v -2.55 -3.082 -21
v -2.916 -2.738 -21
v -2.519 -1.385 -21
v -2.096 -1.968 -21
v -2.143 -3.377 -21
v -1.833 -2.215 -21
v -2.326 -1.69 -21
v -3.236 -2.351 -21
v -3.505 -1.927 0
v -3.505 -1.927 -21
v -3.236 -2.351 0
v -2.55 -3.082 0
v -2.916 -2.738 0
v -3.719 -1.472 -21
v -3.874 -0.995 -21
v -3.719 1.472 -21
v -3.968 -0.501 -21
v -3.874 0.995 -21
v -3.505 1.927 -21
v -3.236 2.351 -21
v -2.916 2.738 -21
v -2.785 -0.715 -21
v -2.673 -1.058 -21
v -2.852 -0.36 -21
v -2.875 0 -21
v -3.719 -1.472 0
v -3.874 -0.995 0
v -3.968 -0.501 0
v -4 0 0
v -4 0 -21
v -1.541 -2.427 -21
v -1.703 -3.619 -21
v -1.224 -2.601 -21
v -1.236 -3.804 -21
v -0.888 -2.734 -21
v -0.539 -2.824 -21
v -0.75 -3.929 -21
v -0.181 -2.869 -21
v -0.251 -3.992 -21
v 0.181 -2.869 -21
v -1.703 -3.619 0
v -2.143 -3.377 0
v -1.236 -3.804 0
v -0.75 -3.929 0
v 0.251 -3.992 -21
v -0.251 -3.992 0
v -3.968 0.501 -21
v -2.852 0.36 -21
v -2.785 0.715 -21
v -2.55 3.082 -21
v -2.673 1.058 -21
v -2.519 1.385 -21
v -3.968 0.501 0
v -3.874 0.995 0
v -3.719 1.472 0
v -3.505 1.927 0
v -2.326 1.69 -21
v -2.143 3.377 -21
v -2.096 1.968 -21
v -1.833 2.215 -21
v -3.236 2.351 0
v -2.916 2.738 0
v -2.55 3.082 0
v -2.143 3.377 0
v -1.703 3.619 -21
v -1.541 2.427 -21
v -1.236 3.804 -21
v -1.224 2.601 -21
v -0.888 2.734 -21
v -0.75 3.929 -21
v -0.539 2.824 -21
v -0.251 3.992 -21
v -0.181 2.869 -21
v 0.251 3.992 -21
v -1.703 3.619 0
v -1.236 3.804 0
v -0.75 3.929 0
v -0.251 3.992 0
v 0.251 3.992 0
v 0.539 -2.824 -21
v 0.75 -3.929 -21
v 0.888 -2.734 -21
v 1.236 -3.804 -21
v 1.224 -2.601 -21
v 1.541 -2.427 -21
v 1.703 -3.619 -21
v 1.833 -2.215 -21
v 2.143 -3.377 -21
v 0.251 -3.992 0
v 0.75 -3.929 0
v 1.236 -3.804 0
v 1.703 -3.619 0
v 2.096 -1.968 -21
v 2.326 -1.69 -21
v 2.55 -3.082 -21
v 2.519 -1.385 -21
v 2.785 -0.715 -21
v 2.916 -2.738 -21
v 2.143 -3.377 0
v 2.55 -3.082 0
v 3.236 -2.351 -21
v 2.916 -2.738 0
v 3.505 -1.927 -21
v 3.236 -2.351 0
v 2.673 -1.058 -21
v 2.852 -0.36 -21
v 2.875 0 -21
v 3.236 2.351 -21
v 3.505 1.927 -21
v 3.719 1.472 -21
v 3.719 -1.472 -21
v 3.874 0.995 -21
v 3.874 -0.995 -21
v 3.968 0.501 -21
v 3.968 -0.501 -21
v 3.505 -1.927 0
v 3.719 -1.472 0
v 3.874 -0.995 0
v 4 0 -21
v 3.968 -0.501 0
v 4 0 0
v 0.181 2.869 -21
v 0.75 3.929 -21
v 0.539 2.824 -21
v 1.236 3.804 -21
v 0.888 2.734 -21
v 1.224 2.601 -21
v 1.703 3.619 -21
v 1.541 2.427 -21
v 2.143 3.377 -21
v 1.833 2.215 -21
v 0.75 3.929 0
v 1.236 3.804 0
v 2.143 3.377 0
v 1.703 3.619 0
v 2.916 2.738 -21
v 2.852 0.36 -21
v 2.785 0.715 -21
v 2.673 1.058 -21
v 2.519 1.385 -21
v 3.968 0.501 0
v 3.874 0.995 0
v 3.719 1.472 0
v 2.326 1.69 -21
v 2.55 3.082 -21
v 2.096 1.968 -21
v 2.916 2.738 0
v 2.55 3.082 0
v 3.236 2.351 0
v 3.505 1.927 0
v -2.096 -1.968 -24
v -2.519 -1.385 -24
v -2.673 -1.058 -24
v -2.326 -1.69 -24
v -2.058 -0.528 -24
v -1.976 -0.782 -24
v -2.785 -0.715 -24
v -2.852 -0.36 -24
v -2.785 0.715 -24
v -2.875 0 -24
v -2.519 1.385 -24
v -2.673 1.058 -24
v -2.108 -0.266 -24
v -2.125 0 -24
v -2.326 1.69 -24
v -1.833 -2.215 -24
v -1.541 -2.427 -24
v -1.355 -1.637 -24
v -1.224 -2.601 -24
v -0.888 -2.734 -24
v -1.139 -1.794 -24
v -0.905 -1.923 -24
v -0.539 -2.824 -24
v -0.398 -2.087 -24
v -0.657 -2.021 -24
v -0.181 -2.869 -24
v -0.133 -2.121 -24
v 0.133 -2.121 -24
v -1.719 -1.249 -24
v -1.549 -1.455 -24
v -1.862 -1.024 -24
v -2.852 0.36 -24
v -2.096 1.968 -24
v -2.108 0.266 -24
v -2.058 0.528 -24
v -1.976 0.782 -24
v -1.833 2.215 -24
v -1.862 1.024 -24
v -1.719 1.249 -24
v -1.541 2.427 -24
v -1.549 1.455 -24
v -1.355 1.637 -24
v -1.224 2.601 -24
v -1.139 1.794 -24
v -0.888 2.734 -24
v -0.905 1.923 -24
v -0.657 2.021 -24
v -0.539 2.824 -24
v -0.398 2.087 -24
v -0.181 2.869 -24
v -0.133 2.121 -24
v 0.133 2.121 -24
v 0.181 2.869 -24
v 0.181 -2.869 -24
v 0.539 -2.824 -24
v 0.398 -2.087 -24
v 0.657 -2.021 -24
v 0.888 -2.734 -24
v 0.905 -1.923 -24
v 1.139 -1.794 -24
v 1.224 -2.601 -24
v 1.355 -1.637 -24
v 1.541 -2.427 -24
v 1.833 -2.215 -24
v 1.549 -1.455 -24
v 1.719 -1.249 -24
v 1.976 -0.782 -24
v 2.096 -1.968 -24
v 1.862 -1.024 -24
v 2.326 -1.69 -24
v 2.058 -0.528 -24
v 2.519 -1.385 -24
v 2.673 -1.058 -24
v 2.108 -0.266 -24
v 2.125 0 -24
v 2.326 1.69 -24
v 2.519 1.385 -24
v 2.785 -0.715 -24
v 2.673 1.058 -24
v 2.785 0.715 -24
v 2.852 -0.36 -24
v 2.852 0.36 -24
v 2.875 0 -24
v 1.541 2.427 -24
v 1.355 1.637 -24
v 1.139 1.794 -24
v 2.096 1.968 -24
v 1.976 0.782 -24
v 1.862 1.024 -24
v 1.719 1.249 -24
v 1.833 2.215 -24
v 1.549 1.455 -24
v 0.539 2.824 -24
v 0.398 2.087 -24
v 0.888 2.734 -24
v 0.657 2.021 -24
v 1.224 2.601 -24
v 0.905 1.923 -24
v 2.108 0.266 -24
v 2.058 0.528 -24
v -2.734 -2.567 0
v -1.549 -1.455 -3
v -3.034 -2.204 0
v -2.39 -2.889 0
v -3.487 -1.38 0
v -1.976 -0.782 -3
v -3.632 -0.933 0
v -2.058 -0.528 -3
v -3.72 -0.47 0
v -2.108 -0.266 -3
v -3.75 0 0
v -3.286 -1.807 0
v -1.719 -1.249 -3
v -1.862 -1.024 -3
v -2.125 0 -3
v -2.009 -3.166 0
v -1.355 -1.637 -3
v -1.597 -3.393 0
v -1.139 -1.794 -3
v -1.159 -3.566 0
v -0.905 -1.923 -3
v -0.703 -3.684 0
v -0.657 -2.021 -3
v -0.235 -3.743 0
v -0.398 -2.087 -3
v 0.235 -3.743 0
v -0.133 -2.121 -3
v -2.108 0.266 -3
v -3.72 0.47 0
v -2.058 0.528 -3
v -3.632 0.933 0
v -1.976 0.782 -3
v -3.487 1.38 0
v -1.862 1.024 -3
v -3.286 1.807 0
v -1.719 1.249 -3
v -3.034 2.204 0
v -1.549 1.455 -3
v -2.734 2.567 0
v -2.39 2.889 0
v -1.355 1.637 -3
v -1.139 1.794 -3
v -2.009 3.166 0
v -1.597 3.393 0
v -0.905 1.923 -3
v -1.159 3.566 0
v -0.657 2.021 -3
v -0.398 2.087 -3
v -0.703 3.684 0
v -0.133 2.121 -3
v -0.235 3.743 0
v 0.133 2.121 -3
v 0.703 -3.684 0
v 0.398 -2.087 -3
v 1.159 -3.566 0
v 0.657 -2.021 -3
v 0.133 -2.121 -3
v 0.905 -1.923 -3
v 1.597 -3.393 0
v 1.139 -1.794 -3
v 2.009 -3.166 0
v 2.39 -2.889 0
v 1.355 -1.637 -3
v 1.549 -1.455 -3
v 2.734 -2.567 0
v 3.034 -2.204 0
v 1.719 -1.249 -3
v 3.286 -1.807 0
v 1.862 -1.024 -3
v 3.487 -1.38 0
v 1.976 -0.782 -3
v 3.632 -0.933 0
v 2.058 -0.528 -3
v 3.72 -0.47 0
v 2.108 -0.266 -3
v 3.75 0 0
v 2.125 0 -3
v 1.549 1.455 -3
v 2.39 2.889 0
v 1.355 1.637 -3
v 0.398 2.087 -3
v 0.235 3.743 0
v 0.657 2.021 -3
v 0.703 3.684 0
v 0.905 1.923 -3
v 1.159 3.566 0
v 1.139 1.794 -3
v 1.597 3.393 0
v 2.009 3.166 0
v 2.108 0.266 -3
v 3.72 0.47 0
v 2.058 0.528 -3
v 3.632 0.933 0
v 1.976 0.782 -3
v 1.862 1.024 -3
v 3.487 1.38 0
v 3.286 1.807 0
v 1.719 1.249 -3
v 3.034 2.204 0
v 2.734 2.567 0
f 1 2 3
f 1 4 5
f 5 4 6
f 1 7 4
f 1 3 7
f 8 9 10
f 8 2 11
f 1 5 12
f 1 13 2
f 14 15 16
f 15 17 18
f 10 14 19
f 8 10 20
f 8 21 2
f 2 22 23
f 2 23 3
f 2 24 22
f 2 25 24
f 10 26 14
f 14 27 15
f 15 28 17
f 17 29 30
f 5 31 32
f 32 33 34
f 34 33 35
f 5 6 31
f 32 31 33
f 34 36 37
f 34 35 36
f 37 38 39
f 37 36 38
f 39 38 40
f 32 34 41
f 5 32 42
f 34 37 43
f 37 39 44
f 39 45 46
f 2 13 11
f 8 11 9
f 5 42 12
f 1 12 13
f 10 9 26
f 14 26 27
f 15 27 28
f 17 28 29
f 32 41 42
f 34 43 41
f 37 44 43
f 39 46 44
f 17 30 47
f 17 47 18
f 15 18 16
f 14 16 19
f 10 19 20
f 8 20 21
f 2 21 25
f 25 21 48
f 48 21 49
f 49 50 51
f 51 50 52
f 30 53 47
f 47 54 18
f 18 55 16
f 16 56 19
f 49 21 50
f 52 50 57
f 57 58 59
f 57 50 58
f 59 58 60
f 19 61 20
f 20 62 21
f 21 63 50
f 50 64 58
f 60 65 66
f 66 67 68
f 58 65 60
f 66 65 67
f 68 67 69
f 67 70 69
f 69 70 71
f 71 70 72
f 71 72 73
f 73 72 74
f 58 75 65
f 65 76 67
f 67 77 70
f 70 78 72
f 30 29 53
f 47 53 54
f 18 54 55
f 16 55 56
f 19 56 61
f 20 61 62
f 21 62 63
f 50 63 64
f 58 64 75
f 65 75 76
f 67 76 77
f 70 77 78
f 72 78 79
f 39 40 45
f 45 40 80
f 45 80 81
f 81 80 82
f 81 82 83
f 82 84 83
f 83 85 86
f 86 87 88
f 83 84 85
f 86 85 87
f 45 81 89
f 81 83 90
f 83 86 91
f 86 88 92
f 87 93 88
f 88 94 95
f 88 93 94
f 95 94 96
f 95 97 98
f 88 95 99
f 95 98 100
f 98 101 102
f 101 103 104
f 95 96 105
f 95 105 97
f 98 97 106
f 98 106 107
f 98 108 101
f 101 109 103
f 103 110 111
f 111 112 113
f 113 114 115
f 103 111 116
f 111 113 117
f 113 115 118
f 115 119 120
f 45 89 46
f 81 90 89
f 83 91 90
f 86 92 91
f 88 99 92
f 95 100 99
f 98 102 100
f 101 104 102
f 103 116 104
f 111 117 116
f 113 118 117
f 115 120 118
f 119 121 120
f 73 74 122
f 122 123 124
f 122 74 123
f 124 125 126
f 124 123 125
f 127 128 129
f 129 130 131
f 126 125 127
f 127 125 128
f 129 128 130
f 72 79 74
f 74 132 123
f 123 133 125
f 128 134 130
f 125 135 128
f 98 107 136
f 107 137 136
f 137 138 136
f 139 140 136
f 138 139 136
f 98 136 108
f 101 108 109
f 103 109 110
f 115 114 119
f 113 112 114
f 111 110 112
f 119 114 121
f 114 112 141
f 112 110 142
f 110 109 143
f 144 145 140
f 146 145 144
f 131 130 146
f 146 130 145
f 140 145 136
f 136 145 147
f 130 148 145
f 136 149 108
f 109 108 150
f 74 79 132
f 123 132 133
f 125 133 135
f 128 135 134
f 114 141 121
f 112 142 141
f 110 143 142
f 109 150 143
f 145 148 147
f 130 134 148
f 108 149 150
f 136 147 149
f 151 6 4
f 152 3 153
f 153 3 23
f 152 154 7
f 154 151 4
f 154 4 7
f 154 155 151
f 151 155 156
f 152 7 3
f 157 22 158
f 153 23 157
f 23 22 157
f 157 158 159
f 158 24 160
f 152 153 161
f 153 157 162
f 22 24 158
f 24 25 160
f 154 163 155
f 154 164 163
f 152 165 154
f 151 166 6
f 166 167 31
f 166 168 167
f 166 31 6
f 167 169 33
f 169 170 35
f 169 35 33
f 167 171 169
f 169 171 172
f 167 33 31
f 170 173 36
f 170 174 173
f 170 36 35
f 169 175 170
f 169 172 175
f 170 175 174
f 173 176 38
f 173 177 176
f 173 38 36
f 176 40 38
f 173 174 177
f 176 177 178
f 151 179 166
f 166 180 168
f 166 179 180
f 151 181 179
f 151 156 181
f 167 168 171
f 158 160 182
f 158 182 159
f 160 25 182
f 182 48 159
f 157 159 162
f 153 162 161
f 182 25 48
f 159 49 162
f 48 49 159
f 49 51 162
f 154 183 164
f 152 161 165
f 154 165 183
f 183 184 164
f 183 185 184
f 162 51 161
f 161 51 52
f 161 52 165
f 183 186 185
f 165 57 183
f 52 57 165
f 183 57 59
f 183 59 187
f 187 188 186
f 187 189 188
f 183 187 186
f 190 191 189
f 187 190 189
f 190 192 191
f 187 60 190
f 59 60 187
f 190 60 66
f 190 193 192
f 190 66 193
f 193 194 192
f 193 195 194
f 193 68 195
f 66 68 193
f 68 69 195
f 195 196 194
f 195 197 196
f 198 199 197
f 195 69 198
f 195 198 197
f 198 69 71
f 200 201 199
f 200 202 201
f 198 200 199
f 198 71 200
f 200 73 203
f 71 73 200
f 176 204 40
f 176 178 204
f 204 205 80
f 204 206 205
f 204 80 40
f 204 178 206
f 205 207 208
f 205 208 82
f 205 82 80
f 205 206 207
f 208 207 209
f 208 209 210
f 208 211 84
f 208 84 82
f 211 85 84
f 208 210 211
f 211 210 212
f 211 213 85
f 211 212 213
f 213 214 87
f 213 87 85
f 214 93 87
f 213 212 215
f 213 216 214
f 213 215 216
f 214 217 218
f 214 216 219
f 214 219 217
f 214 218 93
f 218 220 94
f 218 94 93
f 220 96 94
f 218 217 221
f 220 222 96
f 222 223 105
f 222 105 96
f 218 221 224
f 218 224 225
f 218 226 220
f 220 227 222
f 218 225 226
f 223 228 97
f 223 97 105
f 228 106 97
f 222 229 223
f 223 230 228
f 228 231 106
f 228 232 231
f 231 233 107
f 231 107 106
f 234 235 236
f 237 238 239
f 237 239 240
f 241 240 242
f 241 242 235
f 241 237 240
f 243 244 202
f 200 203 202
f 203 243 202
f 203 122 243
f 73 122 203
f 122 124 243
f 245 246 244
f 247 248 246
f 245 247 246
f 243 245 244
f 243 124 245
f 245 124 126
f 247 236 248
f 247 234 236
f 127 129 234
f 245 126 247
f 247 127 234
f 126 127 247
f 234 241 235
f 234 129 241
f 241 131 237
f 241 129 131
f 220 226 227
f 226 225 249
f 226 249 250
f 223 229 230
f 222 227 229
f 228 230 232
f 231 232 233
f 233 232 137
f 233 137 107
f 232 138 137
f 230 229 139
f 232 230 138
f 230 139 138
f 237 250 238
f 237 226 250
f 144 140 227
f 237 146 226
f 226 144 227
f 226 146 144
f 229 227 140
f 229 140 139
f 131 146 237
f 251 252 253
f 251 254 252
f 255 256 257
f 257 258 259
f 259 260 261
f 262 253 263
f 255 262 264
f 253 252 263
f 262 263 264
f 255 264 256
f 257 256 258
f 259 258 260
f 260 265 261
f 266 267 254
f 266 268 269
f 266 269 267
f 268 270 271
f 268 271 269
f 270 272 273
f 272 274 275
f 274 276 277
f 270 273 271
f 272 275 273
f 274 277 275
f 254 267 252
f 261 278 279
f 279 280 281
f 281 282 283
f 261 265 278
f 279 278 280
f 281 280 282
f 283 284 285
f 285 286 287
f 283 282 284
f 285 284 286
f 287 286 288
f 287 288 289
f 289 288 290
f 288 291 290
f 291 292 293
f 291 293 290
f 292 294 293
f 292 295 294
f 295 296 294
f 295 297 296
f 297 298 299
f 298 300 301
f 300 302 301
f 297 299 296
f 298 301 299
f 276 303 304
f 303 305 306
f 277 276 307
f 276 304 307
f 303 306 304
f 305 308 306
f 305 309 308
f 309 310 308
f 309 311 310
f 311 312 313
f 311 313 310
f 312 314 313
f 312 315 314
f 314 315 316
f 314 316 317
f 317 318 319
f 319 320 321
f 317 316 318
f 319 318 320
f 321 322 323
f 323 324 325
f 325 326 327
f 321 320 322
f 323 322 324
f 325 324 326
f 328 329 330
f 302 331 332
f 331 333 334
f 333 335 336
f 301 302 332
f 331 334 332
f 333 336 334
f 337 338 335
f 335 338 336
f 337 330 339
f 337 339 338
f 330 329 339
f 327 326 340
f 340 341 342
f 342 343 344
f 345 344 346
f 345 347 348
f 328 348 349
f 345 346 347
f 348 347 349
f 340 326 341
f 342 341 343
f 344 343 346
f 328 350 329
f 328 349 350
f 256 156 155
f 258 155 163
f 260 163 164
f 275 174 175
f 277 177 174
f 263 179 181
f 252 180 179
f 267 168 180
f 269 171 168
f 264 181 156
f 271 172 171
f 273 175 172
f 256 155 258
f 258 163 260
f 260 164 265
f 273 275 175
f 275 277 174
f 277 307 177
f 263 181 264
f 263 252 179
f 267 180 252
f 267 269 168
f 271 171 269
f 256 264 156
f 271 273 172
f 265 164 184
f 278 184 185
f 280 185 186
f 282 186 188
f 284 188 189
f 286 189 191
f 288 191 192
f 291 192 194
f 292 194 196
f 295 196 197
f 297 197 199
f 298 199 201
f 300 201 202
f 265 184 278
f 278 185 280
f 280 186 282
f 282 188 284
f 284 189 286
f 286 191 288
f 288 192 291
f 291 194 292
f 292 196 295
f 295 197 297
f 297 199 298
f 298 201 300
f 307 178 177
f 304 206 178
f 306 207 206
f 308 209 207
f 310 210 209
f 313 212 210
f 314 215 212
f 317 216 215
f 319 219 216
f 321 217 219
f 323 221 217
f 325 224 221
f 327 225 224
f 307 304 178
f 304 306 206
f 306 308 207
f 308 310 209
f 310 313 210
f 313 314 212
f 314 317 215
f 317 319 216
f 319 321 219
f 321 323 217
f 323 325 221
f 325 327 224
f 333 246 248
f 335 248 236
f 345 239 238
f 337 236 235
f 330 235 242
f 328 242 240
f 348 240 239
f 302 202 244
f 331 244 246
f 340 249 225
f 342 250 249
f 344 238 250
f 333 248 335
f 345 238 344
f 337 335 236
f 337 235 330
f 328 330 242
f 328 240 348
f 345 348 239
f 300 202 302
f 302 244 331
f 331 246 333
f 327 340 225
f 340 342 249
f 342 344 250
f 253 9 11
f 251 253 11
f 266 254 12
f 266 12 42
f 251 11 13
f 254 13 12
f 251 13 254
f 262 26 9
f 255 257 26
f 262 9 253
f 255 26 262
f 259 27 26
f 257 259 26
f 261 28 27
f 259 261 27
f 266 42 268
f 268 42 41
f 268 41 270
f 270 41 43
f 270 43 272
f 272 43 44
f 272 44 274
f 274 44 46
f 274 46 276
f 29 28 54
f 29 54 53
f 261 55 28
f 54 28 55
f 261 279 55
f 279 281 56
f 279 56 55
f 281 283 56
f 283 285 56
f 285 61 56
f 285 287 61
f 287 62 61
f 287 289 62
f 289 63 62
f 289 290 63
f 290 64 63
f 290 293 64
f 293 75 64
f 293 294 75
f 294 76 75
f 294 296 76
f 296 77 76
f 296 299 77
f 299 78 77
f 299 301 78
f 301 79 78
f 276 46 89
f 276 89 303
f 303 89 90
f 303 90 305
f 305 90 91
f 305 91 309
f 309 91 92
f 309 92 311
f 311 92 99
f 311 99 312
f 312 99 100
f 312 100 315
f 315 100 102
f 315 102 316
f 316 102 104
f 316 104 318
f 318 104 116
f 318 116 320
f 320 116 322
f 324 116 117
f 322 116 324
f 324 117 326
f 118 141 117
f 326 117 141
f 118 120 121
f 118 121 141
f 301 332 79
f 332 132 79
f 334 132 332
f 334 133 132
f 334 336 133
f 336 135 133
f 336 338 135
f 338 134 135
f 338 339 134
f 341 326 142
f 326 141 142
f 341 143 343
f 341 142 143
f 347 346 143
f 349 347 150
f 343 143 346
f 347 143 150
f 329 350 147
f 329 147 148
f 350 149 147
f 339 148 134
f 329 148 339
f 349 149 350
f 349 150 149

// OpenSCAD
$fn = 50;

difference() {
	union() {
		translate(v = [0, 0, -21.0]) {
			cylinder(h = 24, r = 4.0);
		}
		#translate(v = [0, 0, -24.0]) {
			cylinder(h = 24, r = 2.875);
		}
	}
	union() {
		translate(v = [0, 0, 0]) {
			rotate(a = [0, 0, 0]) {
				difference() {
					union() {
						translate(v = [0, 0, -24.0]) {
							cylinder(h = 24, r = 2.0);
						}
						translate(v = [0, 0, -3]) {
							cylinder(h = 3, r1 = 2.125, r2 = 3.75);
						}
						translate(v = [0, 0, -24.0]) {
							cylinder(h = 24, r = 2.125);
						}
						translate(v = [0, 0, -24.0]) {
							cylinder(h = 24, r = 2.0);
						}
					}
					union();
				}
			}
		}
		#cylinder(h = 3, r = 5.0);
	}
}
